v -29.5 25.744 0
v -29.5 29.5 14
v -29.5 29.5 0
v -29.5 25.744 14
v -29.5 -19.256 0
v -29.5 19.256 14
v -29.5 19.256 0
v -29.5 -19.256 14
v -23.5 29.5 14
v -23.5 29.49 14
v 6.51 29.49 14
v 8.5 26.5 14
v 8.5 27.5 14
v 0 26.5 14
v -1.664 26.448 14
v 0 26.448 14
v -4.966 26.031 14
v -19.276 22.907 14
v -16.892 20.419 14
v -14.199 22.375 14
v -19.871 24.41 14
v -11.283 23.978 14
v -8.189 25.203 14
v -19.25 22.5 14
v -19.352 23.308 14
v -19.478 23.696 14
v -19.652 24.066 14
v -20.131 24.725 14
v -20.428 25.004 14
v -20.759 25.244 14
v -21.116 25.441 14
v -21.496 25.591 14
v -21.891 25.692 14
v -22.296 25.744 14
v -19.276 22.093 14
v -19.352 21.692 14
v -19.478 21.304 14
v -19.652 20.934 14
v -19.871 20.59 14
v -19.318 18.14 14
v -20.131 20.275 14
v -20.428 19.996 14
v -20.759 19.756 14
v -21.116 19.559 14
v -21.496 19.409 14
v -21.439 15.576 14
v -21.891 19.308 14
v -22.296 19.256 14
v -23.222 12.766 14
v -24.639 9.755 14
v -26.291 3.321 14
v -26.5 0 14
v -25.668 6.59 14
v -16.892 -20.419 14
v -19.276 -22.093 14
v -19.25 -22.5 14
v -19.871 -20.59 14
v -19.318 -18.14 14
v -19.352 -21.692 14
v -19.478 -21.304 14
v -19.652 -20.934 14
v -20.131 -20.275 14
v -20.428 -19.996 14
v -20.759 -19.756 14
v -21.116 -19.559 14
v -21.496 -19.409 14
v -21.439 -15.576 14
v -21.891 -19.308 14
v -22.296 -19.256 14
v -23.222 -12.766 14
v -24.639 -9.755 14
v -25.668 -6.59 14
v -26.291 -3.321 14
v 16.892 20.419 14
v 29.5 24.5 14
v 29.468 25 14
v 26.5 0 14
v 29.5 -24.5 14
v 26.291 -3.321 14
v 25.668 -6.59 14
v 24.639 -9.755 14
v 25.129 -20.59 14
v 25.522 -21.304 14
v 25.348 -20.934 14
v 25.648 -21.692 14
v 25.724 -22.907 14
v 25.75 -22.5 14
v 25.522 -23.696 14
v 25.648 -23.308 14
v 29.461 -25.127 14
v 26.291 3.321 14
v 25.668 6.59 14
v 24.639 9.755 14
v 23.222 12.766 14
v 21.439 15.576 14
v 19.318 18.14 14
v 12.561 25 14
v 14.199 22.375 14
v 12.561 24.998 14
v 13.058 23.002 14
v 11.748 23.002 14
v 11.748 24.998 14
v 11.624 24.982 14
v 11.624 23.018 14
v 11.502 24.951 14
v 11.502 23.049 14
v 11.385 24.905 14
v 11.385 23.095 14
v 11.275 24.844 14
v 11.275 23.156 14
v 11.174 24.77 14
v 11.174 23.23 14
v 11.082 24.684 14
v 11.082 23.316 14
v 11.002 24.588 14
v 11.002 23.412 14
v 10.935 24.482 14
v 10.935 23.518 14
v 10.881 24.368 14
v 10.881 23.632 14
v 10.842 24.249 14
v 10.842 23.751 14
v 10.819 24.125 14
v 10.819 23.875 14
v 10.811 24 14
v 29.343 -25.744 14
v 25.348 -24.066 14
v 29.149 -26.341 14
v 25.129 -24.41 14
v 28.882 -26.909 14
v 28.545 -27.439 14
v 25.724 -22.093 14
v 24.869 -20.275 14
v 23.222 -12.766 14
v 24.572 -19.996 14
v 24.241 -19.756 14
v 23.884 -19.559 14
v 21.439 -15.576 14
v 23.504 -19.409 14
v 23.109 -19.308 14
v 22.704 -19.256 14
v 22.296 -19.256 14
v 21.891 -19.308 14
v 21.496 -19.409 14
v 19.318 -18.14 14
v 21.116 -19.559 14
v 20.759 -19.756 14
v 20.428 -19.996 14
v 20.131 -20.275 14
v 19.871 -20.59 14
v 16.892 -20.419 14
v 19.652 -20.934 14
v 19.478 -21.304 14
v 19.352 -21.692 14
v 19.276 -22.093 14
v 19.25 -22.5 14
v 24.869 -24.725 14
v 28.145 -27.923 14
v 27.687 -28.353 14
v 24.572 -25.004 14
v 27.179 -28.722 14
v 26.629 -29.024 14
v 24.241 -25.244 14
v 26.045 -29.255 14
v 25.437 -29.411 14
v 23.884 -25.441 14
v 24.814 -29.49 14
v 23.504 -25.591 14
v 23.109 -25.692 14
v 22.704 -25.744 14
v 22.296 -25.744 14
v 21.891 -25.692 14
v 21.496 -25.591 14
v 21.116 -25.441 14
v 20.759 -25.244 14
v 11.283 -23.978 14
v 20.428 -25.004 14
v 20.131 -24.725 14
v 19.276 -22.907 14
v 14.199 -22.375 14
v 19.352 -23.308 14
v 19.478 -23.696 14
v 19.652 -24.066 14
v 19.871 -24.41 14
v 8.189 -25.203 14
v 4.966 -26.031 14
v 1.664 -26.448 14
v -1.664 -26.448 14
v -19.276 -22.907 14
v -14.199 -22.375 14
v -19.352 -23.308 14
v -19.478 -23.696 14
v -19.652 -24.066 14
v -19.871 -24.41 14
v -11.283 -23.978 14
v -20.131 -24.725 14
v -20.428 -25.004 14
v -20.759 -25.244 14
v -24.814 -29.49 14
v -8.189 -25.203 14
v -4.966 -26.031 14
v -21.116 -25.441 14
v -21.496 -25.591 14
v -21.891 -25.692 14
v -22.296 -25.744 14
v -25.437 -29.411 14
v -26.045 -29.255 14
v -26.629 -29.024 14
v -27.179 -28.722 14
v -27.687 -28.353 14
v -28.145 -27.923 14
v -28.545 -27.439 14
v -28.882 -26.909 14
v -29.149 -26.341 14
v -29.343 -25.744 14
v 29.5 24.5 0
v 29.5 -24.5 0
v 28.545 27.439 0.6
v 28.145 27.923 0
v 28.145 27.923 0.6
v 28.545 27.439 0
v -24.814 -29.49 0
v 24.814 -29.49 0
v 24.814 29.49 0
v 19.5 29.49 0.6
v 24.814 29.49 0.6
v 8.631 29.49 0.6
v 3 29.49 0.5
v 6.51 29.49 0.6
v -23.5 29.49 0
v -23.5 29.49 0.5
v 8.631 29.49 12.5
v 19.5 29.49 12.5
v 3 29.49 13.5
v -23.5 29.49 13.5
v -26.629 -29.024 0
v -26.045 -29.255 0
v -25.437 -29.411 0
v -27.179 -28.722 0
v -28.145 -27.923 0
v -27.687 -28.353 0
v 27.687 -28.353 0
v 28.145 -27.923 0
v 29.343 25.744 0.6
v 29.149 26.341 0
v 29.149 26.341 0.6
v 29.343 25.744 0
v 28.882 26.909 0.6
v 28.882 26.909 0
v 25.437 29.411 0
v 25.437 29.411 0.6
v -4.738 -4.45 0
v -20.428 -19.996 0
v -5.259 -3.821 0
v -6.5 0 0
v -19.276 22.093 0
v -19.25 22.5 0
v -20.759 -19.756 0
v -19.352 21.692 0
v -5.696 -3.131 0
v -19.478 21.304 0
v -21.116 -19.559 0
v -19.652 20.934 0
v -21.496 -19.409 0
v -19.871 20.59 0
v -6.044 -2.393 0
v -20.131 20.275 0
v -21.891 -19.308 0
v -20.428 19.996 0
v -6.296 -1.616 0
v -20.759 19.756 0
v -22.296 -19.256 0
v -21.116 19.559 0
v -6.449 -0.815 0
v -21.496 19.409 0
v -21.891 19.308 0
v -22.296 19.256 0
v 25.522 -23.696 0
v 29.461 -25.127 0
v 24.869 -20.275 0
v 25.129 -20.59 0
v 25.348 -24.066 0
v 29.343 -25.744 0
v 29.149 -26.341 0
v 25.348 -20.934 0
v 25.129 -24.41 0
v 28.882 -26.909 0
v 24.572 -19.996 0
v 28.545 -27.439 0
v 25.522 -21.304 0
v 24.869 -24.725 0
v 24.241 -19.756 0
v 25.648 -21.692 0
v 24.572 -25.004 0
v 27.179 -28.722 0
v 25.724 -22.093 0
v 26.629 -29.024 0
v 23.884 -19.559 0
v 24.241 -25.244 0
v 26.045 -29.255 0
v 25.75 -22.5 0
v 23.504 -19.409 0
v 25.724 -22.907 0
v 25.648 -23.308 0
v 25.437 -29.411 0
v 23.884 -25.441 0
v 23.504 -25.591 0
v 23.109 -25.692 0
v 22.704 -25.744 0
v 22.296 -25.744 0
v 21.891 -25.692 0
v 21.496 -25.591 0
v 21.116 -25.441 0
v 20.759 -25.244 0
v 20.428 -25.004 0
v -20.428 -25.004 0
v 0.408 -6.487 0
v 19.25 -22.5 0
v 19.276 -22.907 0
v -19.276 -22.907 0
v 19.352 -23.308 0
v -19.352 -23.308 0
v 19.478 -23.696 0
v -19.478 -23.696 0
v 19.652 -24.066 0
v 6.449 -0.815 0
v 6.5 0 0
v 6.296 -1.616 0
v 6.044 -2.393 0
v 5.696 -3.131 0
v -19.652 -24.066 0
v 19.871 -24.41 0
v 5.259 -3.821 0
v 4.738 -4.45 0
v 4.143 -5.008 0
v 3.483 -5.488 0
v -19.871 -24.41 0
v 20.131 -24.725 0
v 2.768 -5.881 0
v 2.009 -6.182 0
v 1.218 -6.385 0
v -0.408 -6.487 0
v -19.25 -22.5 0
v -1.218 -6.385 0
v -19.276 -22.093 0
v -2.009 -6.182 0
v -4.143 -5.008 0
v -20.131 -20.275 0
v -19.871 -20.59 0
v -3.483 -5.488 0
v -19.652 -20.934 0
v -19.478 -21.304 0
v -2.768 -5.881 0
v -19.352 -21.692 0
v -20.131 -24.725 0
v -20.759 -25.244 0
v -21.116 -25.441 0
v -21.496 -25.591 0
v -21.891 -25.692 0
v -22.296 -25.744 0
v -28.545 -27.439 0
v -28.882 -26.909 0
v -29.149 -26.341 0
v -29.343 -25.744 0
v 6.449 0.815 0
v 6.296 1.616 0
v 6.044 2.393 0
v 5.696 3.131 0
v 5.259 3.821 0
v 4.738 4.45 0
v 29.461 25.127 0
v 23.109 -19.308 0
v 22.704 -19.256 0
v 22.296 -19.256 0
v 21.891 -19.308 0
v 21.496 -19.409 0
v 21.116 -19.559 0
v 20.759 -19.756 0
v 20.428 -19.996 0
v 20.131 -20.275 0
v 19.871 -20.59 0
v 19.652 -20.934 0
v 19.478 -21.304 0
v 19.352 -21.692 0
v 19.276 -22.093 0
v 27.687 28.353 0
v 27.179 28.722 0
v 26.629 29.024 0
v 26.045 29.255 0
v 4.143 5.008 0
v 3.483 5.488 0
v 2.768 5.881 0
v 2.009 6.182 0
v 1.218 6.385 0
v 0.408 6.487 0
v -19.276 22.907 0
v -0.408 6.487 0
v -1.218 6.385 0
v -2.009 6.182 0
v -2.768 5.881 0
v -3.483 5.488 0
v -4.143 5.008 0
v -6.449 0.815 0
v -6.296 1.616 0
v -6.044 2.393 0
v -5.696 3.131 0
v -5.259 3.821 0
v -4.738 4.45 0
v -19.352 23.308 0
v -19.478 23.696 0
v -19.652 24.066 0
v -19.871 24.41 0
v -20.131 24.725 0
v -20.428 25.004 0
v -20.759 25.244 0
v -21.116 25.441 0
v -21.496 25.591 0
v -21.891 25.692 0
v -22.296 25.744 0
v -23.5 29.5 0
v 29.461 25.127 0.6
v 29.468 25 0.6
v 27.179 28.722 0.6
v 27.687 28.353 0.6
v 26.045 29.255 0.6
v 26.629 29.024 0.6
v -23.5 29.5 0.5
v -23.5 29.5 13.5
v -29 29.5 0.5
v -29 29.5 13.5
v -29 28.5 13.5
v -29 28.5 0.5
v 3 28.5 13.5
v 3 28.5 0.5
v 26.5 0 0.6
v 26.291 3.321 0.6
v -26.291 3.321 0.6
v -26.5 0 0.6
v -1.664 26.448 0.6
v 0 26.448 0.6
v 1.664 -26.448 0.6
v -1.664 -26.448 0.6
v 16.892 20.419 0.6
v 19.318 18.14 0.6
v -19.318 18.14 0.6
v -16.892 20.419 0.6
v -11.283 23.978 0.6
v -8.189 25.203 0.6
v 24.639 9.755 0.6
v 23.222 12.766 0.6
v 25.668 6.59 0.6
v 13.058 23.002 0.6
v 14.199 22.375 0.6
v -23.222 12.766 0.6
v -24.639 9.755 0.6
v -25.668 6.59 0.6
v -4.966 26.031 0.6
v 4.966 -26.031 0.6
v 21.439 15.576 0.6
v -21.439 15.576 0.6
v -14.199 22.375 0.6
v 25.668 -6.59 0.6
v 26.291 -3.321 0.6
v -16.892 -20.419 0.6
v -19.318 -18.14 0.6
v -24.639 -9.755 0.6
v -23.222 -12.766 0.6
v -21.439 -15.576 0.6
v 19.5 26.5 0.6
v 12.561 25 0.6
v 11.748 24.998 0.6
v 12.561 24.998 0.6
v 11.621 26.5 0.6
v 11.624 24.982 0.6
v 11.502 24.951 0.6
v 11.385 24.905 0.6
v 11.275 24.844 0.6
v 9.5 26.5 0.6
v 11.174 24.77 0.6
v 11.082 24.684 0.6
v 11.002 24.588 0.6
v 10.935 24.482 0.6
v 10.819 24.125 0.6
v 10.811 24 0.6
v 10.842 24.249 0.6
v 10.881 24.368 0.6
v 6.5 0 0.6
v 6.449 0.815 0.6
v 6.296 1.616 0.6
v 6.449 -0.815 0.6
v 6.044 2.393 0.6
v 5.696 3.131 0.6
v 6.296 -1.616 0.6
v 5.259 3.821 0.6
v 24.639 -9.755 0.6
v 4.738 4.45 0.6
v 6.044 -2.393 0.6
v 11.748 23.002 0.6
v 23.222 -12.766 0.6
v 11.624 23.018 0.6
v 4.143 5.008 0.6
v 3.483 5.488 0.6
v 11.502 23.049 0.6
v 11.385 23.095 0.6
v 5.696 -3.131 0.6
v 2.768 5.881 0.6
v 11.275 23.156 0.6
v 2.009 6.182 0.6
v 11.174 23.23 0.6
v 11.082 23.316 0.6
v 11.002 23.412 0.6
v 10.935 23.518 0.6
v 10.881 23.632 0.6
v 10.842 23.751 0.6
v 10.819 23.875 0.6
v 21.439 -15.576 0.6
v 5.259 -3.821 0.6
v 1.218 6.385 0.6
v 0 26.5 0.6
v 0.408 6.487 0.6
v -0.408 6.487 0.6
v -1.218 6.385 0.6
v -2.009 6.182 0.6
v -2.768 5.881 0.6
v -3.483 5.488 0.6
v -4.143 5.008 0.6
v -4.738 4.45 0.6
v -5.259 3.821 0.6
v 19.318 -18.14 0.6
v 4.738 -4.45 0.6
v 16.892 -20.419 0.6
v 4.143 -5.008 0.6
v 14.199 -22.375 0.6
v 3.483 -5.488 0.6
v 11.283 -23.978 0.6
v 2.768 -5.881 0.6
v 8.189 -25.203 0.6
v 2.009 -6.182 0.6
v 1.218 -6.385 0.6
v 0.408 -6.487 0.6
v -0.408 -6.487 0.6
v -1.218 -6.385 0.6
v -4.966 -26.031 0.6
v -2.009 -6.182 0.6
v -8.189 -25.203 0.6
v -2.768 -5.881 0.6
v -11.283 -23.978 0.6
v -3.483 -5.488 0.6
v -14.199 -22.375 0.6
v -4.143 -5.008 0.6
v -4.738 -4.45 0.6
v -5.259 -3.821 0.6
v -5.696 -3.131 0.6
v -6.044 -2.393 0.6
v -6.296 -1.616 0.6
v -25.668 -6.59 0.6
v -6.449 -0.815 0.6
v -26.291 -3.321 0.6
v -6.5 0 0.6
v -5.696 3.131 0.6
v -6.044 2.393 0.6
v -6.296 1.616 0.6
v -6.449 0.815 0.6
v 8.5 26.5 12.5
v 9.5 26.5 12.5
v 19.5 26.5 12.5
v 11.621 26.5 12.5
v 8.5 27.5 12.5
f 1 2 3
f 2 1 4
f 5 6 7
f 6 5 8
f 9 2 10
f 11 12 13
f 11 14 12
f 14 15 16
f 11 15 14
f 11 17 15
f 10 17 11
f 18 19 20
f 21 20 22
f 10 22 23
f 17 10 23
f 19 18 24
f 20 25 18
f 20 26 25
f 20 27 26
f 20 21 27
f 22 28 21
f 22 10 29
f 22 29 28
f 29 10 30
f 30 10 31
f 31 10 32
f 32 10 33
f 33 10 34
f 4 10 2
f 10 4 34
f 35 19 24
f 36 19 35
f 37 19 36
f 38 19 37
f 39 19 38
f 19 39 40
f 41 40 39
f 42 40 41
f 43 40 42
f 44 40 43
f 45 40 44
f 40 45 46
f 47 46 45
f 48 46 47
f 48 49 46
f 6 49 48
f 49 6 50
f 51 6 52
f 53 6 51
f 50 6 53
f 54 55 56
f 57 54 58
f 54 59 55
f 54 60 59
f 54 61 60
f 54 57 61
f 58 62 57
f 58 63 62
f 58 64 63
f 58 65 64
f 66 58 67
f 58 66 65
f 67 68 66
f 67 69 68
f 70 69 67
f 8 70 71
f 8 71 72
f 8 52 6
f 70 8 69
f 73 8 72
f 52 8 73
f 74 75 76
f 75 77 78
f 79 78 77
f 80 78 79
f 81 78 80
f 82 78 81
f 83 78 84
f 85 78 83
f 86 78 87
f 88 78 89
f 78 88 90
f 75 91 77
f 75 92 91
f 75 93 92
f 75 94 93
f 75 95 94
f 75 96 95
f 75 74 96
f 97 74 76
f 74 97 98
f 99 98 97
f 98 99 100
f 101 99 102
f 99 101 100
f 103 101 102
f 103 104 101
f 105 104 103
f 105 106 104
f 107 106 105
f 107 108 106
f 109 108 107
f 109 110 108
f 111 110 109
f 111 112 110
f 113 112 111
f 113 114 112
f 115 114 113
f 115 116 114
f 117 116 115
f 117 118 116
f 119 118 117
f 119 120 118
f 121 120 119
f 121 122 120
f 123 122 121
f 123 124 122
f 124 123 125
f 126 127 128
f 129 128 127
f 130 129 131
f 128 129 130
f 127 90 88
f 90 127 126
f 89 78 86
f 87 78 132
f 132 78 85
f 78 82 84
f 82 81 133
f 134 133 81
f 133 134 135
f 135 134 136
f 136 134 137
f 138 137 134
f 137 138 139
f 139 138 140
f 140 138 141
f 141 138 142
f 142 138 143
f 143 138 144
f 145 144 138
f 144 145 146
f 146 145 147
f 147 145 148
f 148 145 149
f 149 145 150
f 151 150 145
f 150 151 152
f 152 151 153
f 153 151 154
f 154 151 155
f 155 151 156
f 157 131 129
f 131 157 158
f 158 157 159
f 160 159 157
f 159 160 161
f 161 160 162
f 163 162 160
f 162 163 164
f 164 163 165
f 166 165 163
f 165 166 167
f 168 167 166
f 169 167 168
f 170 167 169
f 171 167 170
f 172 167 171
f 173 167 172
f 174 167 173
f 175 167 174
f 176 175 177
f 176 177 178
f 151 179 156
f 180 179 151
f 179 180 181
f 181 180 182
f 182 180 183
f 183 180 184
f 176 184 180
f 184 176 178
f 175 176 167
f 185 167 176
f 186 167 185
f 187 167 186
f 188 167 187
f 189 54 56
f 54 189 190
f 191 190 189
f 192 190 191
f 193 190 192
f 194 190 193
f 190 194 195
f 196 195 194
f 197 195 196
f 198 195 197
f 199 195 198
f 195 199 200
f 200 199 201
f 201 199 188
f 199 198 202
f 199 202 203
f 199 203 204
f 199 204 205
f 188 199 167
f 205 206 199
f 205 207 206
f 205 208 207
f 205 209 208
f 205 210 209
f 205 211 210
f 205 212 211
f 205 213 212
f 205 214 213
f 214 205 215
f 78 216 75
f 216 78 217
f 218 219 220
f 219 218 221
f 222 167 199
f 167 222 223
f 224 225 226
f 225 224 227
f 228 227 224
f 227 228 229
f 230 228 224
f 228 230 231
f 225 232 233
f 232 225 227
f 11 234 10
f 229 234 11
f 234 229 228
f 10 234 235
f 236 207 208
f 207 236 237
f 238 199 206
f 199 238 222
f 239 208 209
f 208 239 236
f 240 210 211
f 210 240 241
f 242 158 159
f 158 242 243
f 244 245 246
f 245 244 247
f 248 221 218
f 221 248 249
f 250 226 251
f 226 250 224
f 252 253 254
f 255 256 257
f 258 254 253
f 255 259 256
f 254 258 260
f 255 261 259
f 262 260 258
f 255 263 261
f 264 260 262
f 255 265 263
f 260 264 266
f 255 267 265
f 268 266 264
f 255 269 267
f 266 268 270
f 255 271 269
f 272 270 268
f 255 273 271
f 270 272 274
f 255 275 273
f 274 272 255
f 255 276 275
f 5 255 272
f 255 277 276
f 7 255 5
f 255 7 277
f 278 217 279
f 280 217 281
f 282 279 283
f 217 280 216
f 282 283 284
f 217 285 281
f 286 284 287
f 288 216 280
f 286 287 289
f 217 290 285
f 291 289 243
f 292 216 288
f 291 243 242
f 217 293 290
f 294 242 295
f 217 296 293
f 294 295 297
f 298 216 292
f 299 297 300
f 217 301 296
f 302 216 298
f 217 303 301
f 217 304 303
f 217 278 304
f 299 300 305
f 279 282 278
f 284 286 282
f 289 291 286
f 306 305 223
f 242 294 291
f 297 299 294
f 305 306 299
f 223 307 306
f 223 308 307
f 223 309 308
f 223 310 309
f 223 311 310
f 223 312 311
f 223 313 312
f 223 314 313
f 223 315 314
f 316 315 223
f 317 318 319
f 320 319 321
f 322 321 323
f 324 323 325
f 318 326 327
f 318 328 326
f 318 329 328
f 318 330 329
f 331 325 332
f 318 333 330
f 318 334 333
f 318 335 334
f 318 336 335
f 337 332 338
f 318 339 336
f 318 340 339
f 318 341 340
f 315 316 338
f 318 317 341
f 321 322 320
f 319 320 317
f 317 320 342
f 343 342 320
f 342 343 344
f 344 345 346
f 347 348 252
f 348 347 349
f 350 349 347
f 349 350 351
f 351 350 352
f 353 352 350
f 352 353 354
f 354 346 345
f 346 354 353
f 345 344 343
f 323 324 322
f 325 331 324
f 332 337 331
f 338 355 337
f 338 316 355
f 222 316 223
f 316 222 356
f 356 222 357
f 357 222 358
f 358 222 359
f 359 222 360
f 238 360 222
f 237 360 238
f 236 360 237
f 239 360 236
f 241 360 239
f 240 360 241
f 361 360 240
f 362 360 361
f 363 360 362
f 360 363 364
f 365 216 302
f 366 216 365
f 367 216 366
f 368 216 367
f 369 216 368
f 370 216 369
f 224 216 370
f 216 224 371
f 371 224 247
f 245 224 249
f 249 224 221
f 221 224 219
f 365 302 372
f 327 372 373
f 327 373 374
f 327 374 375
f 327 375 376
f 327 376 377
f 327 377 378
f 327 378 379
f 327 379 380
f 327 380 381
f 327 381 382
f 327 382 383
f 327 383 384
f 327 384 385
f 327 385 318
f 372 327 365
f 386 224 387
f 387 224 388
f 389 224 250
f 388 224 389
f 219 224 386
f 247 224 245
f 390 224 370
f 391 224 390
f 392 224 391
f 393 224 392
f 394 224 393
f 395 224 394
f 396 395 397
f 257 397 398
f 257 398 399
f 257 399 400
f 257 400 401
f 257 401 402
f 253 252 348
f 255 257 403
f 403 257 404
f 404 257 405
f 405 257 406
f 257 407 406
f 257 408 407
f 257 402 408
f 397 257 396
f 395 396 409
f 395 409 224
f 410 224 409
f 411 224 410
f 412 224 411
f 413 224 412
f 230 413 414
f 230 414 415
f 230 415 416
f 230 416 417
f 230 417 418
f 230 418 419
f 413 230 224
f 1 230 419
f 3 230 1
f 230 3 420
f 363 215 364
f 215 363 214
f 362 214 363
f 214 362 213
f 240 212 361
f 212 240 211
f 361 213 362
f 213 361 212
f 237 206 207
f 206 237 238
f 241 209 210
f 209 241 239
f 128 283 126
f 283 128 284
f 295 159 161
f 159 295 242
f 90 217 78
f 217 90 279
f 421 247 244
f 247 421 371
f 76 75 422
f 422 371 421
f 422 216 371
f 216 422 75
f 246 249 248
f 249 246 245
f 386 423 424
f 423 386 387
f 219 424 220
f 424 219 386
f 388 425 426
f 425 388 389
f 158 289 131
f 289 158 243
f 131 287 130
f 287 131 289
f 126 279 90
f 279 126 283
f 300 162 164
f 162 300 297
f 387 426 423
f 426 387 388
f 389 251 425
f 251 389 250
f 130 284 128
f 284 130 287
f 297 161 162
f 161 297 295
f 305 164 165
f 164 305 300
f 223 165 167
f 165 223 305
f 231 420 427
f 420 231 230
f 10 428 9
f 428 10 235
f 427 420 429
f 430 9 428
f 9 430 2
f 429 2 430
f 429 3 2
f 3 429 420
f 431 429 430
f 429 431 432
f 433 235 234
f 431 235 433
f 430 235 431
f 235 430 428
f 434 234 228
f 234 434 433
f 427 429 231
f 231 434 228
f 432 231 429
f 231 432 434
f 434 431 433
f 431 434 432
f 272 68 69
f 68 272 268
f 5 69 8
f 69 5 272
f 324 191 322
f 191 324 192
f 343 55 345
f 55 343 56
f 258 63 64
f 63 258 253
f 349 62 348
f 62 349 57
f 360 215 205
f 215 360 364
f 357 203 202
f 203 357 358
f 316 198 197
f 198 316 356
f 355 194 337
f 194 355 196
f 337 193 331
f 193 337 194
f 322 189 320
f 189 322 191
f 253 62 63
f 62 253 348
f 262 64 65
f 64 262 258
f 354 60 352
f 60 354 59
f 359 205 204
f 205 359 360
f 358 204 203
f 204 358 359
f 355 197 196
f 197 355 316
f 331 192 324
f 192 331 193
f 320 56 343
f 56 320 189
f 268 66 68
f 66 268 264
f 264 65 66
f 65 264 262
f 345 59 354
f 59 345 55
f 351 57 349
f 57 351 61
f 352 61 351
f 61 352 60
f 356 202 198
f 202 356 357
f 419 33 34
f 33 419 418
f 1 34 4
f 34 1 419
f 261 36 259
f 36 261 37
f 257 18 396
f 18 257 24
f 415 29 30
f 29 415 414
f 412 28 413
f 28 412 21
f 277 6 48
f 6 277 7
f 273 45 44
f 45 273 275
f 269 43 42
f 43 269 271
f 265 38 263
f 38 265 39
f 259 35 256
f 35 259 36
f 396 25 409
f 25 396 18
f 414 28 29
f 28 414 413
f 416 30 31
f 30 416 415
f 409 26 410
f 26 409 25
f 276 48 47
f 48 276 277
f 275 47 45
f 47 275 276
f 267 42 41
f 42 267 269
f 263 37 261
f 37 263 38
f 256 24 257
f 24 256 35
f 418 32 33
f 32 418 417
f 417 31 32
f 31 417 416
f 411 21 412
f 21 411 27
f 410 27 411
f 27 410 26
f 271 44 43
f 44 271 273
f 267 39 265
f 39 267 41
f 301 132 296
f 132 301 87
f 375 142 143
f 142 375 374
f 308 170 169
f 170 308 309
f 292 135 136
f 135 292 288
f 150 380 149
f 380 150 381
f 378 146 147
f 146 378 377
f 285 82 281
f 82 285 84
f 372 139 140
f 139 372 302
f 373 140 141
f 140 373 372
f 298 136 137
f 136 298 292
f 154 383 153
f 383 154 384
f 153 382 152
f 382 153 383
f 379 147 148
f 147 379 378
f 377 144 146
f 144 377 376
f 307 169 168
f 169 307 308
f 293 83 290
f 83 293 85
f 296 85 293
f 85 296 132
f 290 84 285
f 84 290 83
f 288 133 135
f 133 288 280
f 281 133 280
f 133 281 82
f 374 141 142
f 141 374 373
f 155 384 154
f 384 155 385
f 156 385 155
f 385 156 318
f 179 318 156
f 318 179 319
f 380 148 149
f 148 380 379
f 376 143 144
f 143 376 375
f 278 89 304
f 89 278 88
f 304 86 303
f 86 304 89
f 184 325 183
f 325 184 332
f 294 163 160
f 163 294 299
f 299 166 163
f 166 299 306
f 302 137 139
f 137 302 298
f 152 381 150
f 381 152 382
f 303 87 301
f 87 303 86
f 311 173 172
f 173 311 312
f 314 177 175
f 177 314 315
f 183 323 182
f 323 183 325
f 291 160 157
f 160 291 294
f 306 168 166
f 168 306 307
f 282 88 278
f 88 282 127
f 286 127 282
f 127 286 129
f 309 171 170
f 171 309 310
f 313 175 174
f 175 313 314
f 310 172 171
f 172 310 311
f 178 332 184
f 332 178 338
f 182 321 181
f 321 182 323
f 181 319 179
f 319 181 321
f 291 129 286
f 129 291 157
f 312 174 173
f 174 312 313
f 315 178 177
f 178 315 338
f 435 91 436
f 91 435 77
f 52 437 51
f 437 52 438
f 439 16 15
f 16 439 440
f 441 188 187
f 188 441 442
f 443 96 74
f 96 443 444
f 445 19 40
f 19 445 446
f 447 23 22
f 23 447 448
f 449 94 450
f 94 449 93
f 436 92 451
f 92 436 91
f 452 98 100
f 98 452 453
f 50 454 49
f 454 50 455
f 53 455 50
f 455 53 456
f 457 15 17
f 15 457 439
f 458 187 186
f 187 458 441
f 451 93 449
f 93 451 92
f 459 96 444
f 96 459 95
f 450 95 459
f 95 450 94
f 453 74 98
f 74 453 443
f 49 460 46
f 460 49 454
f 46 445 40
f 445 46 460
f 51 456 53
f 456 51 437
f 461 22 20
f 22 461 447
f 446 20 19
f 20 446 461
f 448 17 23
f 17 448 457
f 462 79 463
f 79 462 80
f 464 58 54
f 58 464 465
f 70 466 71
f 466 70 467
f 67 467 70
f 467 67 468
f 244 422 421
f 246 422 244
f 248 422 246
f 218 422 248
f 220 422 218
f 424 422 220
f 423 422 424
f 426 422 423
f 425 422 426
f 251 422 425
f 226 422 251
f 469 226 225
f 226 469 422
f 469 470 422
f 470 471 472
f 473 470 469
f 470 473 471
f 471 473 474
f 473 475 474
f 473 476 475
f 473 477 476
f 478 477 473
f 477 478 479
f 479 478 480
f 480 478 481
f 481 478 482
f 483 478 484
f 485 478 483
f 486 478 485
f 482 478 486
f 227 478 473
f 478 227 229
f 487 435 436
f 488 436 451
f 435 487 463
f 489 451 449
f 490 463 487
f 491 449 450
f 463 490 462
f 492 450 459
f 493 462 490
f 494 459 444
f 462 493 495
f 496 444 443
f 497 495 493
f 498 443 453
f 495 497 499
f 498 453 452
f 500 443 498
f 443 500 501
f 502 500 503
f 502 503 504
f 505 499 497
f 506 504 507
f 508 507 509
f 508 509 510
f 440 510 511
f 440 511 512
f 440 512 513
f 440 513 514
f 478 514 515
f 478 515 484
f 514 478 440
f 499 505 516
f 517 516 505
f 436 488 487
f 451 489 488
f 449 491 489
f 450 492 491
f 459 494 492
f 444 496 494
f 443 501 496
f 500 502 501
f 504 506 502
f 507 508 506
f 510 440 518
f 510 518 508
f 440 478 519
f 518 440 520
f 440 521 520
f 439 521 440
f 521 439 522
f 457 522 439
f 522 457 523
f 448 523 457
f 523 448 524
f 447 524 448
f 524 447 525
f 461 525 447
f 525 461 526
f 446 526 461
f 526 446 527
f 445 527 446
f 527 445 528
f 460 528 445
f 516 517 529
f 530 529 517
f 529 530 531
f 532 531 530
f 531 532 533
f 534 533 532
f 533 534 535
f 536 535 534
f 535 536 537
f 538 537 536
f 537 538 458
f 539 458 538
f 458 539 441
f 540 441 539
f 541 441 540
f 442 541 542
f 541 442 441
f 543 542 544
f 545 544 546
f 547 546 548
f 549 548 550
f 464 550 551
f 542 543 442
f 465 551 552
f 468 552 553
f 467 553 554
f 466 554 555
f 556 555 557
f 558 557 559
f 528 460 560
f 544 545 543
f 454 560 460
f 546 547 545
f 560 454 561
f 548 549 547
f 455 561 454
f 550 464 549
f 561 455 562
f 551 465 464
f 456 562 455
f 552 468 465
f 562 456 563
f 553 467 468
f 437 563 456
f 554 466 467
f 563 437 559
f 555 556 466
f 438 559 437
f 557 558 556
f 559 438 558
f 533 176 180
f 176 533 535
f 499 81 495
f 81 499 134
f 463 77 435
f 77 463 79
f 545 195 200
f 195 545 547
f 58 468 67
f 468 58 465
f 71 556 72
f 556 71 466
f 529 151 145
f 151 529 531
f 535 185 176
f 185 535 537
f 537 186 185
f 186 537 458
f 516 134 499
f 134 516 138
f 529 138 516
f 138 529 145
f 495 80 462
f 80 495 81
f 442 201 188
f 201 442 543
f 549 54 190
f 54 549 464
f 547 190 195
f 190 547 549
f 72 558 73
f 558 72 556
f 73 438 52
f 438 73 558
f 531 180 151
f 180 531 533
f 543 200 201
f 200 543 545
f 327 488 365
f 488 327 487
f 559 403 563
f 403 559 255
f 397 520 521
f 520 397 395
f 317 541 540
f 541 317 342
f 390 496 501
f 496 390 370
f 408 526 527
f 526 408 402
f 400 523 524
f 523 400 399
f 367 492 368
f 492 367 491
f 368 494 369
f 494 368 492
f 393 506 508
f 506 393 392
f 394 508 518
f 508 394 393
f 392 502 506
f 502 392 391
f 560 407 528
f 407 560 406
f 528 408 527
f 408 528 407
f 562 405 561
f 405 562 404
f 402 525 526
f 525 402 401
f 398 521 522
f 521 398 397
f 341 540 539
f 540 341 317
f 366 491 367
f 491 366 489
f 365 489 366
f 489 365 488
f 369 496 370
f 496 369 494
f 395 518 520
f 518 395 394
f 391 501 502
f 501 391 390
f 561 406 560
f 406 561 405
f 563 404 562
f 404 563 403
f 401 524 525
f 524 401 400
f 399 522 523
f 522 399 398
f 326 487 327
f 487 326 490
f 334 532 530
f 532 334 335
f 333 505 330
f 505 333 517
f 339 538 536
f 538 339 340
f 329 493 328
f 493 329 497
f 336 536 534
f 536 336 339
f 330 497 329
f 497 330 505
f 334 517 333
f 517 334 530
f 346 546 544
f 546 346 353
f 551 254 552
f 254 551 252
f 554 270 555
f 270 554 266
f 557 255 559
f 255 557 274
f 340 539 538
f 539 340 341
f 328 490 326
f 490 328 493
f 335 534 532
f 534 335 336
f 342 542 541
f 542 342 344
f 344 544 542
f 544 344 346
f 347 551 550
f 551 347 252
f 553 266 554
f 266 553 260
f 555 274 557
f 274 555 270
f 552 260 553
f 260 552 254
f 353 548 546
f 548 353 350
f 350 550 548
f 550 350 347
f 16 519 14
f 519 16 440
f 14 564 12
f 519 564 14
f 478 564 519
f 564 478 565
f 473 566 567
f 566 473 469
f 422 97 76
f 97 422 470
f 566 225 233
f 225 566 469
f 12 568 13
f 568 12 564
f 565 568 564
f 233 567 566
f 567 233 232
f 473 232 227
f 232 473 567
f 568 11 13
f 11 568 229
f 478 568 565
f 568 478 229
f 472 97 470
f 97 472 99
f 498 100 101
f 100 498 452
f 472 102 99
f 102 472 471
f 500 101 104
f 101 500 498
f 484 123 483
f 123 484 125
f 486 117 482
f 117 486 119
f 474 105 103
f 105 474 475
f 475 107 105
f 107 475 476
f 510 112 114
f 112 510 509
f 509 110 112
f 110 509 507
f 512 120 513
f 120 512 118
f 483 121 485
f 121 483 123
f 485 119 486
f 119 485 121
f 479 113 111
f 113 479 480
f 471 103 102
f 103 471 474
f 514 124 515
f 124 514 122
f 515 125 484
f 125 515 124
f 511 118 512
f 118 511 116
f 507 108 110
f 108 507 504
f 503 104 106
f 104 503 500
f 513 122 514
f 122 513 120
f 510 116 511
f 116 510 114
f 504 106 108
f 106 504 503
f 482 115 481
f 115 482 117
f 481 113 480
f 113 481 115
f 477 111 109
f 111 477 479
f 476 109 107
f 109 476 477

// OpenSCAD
$fn = 50;


union() {
	difference() {
		union() {
			translate(v = [0, 0, 0]) {
				rotate(a = [0, 0, 0]) {
					hull() {
						translate(v = [-24.5000000000, 24.5000000000, 0]) {
							rotate(a = [0, 0, 0]) {
								translate(v = [0, 0, 0]) {
									rotate(a = [0, 0, 0]) {
										cylinder(h = 14, r = 5);
									}
								}
							}
						}
						translate(v = [24.5000000000, 24.5000000000, 0]) {
							rotate(a = [0, 0, 0]) {
								translate(v = [0, 0, 0]) {
									rotate(a = [0, 0, 0]) {
										cylinder(h = 14, r = 5);
									}
								}
							}
						}
						translate(v = [-24.5000000000, -24.5000000000, 0]) {
							rotate(a = [0, 0, 0]) {
								translate(v = [0, 0, 0]) {
									rotate(a = [0, 0, 0]) {
										cylinder(h = 14, r = 5);
									}
								}
							}
						}
						translate(v = [24.5000000000, -24.5000000000, 0]) {
							rotate(a = [0, 0, 0]) {
								translate(v = [0, 0, 0]) {
									rotate(a = [0, 0, 0]) {
										cylinder(h = 14, r = 5);
									}
								}
							}
						}
					}
				}
			}
			translate(v = [-29.5000000000, 23.5000000000, 0]) {
				rotate(a = [0, 0, 0]) {
					cube(size = [6, 6, 14]);
				}
			}
		}
		union() {
			#translate(v = [-29.0000000000, 28.5000000000, 0.5000000000]) {
				rotate(a = [0, 0, 0]) {
					cube(size = [32, 1, 13.0000000000]);
				}
			}
			translate(v = [-30.0000000000, -22.5000000000, -125]) {
				rotate(a = [0, 0, 0]) {
					hull() {
						translate(v = [7.5000000000, 0, 0]) {
							rotate(a = [0, 0, 0]) {
								translate(v = [0, 0, 0]) {
									rotate(a = [0, 0, 0]) {
										cylinder(h = 250, r = 3.2500000000);
									}
								}
							}
						}
						translate(v = [-7.5000000000, 0, 0]) {
							rotate(a = [0, 0, 0]) {
								translate(v = [0, 0, 0]) {
									rotate(a = [0, 0, 0]) {
										cylinder(h = 250, r = 3.2500000000);
									}
								}
							}
						}
					}
				}
			}
			translate(v = [-30.0000000000, 22.5000000000, -125]) {
				rotate(a = [0, 0, 0]) {
					hull() {
						translate(v = [7.5000000000, 0, 0]) {
							rotate(a = [0, 0, 0]) {
								translate(v = [0, 0, 0]) {
									rotate(a = [0, 0, 0]) {
										cylinder(h = 250, r = 3.2500000000);
									}
								}
							}
						}
						translate(v = [-7.5000000000, 0, 0]) {
							rotate(a = [0, 0, 0]) {
								translate(v = [0, 0, 0]) {
									rotate(a = [0, 0, 0]) {
										cylinder(h = 250, r = 3.2500000000);
									}
								}
							}
						}
					}
				}
			}
			translate(v = [22.5000000000, -22.5000000000, -125.0000000000]) {
				rotate(a = [0, 0, 0]) {
					cylinder(h = 250, r = 3.2500000000);
				}
			}
			translate(v = [0, 0, 0.6000000000]) {
				rotate(a = [0, 0, 0]) {
					cylinder(h = 16.4000000000, r = 26.5000000000);
				}
			}
			translate(v = [0, 0, -7.0000000000]) {
				rotate(a = [0, 0, 0]) {
					cylinder(h = 14, r = 6.5000000000);
				}
			}
			translate(v = [0.0000000000, 25.0000000000, 0.6000000000]) {
				rotate(a = [0, 0, 0]) {
					cube(size = [29.5000000000, 1.5000000000, 16.4000000000]);
				}
			}
			translate(v = [19.5000000000, 25.0000000000, 0.6000000000]) {
				rotate(a = [0, 0, 0]) {
					cube(size = [10, 4.5000000000, 16.4000000000]);
				}
			}
			translate(v = [8.5000000000, 25.0000000000, 12.5000000000]) {
				rotate(a = [0, 0, 0]) {
					cube(size = [21, 4.5000000000, 1.5000000000]);
				}
			}
			translate(v = [5.7500000000, 30.2500000000, 0.6000000000]) {
				rotate(a = [0, 0, -45]) {
					cube(size = [7.5000000000, 1.5000000000, 16.4000000000]);
				}
			}
			translate(v = [5.0610000000, 23.0000000000, 0.6000000000]) {
				rotate(a = [0, 0, 0]) {
					cube(size = [7.5000000000, 2, 13.4000000000]);
				}
			}
		}
	}
	union() {
		translate(v = [14.3110000000, 24.0000000000, 0]) {
			rotate(a = [0, 0, 0]) {
				hull() {
					translate(v = [2.5000000000, 0, 0]) {
						rotate(a = [0, 0, 0]) {
							#translate(v = [0, 0, 0]) {
								rotate(a = [0, 0, 0]) {
									cylinder(h = 14, r = 1.0000000000);
								}
							}
						}
					}
					translate(v = [-2.5000000000, 0, 0]) {
						rotate(a = [0, 0, 0]) {
							#translate(v = [0, 0, 0]) {
								rotate(a = [0, 0, 0]) {
									cylinder(h = 14, r = 1.0000000000);
								}
							}
						}
					}
				}
			}
		}
	}
}
